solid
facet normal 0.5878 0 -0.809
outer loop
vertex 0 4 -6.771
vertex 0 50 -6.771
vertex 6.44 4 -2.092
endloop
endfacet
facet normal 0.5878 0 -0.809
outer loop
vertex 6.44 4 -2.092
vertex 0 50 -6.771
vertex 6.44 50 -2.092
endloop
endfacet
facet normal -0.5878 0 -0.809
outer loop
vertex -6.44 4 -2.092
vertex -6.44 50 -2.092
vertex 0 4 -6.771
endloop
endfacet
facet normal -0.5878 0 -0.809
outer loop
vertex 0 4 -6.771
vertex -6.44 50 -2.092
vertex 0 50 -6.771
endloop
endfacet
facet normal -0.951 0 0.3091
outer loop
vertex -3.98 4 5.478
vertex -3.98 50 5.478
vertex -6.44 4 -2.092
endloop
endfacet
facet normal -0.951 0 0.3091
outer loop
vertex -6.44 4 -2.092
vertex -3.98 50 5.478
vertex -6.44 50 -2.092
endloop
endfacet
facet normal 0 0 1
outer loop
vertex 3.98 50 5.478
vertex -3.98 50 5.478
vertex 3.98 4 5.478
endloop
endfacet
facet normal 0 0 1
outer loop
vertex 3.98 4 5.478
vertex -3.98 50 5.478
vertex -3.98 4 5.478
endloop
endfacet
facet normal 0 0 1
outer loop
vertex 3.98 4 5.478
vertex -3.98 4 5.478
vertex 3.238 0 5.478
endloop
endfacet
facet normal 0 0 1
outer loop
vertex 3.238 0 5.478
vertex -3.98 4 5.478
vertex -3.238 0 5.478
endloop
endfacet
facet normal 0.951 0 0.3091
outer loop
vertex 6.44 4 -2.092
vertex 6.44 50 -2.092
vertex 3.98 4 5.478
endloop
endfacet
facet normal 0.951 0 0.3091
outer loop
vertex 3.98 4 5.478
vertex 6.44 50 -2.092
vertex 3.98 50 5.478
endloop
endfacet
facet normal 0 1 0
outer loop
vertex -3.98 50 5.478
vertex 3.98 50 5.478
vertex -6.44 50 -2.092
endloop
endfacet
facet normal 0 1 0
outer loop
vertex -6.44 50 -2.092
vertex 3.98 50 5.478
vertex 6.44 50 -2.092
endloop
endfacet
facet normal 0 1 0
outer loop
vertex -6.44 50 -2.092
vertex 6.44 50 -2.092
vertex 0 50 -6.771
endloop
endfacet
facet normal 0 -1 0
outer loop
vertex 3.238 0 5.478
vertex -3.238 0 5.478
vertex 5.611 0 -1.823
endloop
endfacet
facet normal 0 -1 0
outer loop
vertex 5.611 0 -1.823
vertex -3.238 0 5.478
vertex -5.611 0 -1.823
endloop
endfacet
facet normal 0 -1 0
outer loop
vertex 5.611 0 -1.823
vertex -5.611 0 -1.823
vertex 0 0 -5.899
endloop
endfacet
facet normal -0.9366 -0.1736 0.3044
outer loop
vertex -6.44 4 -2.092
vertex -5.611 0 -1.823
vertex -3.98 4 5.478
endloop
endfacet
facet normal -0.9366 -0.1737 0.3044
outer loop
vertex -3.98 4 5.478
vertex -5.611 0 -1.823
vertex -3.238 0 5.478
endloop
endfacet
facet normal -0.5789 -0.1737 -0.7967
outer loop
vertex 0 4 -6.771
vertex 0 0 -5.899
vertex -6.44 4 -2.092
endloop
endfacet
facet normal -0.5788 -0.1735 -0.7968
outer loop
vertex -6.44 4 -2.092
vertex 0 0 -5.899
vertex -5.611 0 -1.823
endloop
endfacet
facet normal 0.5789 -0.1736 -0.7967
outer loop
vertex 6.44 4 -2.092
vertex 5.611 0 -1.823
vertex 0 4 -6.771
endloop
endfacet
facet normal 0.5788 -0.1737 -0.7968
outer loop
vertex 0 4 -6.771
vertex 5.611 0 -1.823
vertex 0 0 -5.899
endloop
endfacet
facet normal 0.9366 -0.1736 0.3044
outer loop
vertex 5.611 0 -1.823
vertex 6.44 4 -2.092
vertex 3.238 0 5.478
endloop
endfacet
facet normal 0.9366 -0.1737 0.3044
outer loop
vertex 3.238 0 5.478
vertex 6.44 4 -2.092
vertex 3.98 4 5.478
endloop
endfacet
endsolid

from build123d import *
from OCP.BRepFilletAPI import BRepFilletAPI_MakeChamfer

# Parameters (mm, degrees)
BOSS_EXTRUDE1_DEPTH = 50
CHAMFER1_SIZE       = 4
CHAMFER1_SIZE2      = 0.705307923


with BuildPart() as part:
    # Sketch1 → Boss-Extrude1 (new body)
    with BuildSketch(Plane(origin=(0, 0, 0), x_dir=(1, 0, 0), z_dir=(0, 1, 0))):
        Polygon((0, 6.771180434), (-6.439775275, 2.092409826), (-3.98, -5.478000043), (3.98, -5.478000043), (6.439775275, 2.092409826), align=None)
    extrude(amount=BOSS_EXTRUDE1_DEPTH)

    # Chamfer1: one chamfer whose edges measure the first distance from different faces: ONE call of the kernel's chamfer builder (chamfer() names one face for all edges)
    chamfer1_edges_1 = [part.edges().sort_by_distance(p)[0] for p in [
        (5.209887638, 0, 1.692795109),
    ]]
    chamfer1_side_1 = [part.faces().sort_by_distance(p)[0] for p in [
        (5.209887638, 25, 1.692795109),
    ]]
    chamfer1_edges_2 = [part.edges().sort_by_distance(p)[0] for p in [
        (-5.209887638, 0, 1.692795109),
    ]]
    chamfer1_side_2 = [part.faces().sort_by_distance(p)[0] for p in [
        (-5.209887638, 25, 1.692795109),
    ]]
    chamfer1_edges_3 = [part.edges().sort_by_distance(p)[0] for p in [
        (-3.219887638, 0, -4.43179513),
    ]]
    chamfer1_side_3 = [part.faces().sort_by_distance(p)[0] for p in [
        (-3.219887638, 25, -4.43179513),
    ]]
    chamfer1_edges_4 = [part.edges().sort_by_distance(p)[0] for p in [
        (3.219887638, 0, -4.43179513),
    ]]
    chamfer1_side_4 = [part.faces().sort_by_distance(p)[0] for p in [
        (3.219887638, 25, -4.43179513),
    ]]
    chamfer1 = BRepFilletAPI_MakeChamfer(part.part.solid().wrapped)
    for e in chamfer1_edges_1:
        chamfer1.Add(CHAMFER1_SIZE, CHAMFER1_SIZE2, e.wrapped, chamfer1_side_1[0].wrapped)  # the first distance lies on this face
    for e in chamfer1_edges_2:
        chamfer1.Add(CHAMFER1_SIZE, CHAMFER1_SIZE2, e.wrapped, chamfer1_side_2[0].wrapped)  # the first distance lies on this face
    for e in chamfer1_edges_3:
        chamfer1.Add(CHAMFER1_SIZE, CHAMFER1_SIZE2, e.wrapped, chamfer1_side_3[0].wrapped)  # the first distance lies on this face
    for e in chamfer1_edges_4:
        chamfer1.Add(CHAMFER1_SIZE, CHAMFER1_SIZE2, e.wrapped, chamfer1_side_4[0].wrapped)  # the first distance lies on this face
    add(Compound.cast(chamfer1.Shape()), mode=Mode.REPLACE)


solid = part.part
